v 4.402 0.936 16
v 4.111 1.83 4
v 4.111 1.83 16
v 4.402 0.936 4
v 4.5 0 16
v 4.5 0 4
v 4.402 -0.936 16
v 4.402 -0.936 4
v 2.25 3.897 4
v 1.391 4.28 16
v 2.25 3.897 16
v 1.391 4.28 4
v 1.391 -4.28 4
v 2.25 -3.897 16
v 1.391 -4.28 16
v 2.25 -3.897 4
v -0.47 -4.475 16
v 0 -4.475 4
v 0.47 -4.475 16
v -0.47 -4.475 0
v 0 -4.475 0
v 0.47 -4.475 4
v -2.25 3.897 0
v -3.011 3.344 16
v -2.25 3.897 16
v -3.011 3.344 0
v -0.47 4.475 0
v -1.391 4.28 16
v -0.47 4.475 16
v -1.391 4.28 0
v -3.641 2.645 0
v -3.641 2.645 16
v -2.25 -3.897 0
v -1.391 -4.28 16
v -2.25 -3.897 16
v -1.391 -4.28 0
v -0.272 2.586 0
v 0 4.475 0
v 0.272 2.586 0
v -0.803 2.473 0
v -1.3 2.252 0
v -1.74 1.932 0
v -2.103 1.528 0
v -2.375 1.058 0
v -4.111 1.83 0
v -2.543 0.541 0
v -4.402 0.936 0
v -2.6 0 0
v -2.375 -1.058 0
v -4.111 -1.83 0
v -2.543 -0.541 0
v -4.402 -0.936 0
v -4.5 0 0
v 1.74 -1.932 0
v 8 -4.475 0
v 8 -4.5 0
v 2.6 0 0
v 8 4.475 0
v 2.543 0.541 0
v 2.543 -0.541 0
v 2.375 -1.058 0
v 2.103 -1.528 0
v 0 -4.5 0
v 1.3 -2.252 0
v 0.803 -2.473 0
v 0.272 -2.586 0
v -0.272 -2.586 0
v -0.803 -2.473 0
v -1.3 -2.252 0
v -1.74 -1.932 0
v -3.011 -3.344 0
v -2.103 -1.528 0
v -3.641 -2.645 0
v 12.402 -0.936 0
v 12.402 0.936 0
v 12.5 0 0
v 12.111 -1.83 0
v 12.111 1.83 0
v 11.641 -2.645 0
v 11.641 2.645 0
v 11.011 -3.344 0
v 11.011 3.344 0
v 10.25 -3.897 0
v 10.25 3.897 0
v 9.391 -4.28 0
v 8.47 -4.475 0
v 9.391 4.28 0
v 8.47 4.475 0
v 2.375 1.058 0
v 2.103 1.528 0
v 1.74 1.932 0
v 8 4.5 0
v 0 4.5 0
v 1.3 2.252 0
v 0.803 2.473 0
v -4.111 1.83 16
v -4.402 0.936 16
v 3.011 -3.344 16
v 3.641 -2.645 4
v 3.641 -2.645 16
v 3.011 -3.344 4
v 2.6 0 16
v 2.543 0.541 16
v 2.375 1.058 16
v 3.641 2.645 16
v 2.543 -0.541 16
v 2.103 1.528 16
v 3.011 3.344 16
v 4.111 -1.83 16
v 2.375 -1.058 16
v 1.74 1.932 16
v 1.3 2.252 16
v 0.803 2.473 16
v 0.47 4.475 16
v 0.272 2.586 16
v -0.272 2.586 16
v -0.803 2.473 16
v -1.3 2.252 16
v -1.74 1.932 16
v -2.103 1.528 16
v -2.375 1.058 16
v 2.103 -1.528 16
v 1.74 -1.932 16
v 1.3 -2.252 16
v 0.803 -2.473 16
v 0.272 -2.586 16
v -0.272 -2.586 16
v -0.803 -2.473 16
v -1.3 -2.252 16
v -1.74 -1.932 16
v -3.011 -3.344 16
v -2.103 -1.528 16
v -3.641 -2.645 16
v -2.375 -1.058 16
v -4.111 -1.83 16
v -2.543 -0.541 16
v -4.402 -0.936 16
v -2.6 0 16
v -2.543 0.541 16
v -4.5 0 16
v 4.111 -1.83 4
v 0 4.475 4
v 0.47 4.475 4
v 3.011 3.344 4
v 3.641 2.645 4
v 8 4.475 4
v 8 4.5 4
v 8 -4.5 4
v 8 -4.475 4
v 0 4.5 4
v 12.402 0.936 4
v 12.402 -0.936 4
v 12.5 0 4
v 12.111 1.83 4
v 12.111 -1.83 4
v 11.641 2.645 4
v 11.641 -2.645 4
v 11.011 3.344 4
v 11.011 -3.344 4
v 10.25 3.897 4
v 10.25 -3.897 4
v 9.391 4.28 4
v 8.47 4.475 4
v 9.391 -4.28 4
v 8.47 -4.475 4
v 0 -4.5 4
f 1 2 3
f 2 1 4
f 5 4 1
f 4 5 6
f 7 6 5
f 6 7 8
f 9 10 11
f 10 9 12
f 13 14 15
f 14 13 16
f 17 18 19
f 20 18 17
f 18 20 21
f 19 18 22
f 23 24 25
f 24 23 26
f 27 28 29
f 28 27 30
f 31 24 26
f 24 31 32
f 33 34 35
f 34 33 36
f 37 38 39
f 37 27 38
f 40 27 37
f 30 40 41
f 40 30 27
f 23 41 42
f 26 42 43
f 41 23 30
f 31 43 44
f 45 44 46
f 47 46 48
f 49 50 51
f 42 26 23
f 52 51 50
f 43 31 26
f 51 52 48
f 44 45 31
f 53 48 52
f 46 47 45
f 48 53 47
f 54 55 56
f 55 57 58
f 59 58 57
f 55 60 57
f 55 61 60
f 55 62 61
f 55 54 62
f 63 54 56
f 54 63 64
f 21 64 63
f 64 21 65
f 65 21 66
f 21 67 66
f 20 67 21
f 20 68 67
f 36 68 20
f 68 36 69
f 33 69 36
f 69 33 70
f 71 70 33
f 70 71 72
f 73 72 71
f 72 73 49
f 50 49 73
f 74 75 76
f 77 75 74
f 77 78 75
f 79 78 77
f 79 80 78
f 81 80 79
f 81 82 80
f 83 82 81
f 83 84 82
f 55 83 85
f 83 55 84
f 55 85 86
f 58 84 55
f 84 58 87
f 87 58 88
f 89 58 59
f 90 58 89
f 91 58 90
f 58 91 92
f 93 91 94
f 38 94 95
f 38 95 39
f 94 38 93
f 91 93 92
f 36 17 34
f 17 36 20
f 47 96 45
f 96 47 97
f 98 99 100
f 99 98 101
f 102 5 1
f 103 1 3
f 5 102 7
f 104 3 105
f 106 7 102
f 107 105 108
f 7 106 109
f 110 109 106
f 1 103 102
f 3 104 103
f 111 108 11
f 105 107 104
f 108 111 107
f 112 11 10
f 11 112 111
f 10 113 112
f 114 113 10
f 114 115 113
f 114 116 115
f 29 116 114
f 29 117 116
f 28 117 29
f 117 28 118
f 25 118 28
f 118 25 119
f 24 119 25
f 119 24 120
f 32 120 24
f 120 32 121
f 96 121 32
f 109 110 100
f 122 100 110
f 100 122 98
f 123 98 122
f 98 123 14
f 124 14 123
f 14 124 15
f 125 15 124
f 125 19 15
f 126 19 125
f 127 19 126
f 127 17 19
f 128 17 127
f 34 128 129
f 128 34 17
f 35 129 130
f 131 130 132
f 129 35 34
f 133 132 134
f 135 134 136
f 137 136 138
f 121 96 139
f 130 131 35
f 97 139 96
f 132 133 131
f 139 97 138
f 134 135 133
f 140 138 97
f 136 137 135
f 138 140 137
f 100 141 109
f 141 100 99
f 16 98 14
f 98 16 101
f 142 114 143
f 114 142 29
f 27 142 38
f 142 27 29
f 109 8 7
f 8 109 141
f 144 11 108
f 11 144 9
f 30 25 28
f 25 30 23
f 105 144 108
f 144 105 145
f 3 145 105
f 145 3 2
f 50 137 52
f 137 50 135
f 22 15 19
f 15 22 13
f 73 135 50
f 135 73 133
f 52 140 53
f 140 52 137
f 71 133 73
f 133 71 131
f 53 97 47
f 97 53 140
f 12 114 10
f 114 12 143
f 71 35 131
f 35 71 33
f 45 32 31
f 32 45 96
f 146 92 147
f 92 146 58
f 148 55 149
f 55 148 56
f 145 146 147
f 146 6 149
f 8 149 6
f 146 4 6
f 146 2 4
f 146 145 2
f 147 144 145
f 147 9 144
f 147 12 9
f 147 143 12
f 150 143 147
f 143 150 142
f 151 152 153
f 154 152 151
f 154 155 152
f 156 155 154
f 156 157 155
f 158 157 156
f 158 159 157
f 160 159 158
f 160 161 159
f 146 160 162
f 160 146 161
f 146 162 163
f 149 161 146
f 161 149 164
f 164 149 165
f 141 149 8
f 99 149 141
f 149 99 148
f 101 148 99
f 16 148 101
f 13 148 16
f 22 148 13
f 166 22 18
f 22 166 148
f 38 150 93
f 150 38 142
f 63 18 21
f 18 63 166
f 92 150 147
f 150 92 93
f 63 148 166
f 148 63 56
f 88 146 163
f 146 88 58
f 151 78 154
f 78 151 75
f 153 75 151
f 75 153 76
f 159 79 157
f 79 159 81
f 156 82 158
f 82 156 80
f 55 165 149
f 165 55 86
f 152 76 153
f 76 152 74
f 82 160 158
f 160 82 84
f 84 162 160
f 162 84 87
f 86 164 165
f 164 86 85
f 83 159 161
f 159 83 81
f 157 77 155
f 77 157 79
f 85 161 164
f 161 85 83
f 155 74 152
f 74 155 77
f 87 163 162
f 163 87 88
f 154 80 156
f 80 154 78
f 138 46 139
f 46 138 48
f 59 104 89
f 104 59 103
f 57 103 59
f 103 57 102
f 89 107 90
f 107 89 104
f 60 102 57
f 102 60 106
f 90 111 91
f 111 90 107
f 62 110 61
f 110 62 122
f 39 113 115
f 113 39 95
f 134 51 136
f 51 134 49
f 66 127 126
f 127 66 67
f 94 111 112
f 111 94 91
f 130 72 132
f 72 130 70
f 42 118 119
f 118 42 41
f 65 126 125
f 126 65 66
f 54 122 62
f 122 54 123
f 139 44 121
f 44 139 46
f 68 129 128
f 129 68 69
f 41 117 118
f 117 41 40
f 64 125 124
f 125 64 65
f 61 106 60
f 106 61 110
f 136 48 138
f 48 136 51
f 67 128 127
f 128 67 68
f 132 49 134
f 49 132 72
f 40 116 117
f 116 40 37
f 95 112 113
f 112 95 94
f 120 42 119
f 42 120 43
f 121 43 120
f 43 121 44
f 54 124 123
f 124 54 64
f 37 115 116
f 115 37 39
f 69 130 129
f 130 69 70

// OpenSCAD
difference() {
  union() {
    cylinder(16, 4.5, 4.5, $fn = 30);

    translate([0, -4.5, 0])
      cube([8, 9, 4]);

    translate([8, 0, 0])
      cylinder(4, 4.5, 4.5, $fn = 30);
  }
  // Screw hole
  translate([0, 0, -1])
    cylinder(18, 2.6, 2.6, $fn = 30);
}
